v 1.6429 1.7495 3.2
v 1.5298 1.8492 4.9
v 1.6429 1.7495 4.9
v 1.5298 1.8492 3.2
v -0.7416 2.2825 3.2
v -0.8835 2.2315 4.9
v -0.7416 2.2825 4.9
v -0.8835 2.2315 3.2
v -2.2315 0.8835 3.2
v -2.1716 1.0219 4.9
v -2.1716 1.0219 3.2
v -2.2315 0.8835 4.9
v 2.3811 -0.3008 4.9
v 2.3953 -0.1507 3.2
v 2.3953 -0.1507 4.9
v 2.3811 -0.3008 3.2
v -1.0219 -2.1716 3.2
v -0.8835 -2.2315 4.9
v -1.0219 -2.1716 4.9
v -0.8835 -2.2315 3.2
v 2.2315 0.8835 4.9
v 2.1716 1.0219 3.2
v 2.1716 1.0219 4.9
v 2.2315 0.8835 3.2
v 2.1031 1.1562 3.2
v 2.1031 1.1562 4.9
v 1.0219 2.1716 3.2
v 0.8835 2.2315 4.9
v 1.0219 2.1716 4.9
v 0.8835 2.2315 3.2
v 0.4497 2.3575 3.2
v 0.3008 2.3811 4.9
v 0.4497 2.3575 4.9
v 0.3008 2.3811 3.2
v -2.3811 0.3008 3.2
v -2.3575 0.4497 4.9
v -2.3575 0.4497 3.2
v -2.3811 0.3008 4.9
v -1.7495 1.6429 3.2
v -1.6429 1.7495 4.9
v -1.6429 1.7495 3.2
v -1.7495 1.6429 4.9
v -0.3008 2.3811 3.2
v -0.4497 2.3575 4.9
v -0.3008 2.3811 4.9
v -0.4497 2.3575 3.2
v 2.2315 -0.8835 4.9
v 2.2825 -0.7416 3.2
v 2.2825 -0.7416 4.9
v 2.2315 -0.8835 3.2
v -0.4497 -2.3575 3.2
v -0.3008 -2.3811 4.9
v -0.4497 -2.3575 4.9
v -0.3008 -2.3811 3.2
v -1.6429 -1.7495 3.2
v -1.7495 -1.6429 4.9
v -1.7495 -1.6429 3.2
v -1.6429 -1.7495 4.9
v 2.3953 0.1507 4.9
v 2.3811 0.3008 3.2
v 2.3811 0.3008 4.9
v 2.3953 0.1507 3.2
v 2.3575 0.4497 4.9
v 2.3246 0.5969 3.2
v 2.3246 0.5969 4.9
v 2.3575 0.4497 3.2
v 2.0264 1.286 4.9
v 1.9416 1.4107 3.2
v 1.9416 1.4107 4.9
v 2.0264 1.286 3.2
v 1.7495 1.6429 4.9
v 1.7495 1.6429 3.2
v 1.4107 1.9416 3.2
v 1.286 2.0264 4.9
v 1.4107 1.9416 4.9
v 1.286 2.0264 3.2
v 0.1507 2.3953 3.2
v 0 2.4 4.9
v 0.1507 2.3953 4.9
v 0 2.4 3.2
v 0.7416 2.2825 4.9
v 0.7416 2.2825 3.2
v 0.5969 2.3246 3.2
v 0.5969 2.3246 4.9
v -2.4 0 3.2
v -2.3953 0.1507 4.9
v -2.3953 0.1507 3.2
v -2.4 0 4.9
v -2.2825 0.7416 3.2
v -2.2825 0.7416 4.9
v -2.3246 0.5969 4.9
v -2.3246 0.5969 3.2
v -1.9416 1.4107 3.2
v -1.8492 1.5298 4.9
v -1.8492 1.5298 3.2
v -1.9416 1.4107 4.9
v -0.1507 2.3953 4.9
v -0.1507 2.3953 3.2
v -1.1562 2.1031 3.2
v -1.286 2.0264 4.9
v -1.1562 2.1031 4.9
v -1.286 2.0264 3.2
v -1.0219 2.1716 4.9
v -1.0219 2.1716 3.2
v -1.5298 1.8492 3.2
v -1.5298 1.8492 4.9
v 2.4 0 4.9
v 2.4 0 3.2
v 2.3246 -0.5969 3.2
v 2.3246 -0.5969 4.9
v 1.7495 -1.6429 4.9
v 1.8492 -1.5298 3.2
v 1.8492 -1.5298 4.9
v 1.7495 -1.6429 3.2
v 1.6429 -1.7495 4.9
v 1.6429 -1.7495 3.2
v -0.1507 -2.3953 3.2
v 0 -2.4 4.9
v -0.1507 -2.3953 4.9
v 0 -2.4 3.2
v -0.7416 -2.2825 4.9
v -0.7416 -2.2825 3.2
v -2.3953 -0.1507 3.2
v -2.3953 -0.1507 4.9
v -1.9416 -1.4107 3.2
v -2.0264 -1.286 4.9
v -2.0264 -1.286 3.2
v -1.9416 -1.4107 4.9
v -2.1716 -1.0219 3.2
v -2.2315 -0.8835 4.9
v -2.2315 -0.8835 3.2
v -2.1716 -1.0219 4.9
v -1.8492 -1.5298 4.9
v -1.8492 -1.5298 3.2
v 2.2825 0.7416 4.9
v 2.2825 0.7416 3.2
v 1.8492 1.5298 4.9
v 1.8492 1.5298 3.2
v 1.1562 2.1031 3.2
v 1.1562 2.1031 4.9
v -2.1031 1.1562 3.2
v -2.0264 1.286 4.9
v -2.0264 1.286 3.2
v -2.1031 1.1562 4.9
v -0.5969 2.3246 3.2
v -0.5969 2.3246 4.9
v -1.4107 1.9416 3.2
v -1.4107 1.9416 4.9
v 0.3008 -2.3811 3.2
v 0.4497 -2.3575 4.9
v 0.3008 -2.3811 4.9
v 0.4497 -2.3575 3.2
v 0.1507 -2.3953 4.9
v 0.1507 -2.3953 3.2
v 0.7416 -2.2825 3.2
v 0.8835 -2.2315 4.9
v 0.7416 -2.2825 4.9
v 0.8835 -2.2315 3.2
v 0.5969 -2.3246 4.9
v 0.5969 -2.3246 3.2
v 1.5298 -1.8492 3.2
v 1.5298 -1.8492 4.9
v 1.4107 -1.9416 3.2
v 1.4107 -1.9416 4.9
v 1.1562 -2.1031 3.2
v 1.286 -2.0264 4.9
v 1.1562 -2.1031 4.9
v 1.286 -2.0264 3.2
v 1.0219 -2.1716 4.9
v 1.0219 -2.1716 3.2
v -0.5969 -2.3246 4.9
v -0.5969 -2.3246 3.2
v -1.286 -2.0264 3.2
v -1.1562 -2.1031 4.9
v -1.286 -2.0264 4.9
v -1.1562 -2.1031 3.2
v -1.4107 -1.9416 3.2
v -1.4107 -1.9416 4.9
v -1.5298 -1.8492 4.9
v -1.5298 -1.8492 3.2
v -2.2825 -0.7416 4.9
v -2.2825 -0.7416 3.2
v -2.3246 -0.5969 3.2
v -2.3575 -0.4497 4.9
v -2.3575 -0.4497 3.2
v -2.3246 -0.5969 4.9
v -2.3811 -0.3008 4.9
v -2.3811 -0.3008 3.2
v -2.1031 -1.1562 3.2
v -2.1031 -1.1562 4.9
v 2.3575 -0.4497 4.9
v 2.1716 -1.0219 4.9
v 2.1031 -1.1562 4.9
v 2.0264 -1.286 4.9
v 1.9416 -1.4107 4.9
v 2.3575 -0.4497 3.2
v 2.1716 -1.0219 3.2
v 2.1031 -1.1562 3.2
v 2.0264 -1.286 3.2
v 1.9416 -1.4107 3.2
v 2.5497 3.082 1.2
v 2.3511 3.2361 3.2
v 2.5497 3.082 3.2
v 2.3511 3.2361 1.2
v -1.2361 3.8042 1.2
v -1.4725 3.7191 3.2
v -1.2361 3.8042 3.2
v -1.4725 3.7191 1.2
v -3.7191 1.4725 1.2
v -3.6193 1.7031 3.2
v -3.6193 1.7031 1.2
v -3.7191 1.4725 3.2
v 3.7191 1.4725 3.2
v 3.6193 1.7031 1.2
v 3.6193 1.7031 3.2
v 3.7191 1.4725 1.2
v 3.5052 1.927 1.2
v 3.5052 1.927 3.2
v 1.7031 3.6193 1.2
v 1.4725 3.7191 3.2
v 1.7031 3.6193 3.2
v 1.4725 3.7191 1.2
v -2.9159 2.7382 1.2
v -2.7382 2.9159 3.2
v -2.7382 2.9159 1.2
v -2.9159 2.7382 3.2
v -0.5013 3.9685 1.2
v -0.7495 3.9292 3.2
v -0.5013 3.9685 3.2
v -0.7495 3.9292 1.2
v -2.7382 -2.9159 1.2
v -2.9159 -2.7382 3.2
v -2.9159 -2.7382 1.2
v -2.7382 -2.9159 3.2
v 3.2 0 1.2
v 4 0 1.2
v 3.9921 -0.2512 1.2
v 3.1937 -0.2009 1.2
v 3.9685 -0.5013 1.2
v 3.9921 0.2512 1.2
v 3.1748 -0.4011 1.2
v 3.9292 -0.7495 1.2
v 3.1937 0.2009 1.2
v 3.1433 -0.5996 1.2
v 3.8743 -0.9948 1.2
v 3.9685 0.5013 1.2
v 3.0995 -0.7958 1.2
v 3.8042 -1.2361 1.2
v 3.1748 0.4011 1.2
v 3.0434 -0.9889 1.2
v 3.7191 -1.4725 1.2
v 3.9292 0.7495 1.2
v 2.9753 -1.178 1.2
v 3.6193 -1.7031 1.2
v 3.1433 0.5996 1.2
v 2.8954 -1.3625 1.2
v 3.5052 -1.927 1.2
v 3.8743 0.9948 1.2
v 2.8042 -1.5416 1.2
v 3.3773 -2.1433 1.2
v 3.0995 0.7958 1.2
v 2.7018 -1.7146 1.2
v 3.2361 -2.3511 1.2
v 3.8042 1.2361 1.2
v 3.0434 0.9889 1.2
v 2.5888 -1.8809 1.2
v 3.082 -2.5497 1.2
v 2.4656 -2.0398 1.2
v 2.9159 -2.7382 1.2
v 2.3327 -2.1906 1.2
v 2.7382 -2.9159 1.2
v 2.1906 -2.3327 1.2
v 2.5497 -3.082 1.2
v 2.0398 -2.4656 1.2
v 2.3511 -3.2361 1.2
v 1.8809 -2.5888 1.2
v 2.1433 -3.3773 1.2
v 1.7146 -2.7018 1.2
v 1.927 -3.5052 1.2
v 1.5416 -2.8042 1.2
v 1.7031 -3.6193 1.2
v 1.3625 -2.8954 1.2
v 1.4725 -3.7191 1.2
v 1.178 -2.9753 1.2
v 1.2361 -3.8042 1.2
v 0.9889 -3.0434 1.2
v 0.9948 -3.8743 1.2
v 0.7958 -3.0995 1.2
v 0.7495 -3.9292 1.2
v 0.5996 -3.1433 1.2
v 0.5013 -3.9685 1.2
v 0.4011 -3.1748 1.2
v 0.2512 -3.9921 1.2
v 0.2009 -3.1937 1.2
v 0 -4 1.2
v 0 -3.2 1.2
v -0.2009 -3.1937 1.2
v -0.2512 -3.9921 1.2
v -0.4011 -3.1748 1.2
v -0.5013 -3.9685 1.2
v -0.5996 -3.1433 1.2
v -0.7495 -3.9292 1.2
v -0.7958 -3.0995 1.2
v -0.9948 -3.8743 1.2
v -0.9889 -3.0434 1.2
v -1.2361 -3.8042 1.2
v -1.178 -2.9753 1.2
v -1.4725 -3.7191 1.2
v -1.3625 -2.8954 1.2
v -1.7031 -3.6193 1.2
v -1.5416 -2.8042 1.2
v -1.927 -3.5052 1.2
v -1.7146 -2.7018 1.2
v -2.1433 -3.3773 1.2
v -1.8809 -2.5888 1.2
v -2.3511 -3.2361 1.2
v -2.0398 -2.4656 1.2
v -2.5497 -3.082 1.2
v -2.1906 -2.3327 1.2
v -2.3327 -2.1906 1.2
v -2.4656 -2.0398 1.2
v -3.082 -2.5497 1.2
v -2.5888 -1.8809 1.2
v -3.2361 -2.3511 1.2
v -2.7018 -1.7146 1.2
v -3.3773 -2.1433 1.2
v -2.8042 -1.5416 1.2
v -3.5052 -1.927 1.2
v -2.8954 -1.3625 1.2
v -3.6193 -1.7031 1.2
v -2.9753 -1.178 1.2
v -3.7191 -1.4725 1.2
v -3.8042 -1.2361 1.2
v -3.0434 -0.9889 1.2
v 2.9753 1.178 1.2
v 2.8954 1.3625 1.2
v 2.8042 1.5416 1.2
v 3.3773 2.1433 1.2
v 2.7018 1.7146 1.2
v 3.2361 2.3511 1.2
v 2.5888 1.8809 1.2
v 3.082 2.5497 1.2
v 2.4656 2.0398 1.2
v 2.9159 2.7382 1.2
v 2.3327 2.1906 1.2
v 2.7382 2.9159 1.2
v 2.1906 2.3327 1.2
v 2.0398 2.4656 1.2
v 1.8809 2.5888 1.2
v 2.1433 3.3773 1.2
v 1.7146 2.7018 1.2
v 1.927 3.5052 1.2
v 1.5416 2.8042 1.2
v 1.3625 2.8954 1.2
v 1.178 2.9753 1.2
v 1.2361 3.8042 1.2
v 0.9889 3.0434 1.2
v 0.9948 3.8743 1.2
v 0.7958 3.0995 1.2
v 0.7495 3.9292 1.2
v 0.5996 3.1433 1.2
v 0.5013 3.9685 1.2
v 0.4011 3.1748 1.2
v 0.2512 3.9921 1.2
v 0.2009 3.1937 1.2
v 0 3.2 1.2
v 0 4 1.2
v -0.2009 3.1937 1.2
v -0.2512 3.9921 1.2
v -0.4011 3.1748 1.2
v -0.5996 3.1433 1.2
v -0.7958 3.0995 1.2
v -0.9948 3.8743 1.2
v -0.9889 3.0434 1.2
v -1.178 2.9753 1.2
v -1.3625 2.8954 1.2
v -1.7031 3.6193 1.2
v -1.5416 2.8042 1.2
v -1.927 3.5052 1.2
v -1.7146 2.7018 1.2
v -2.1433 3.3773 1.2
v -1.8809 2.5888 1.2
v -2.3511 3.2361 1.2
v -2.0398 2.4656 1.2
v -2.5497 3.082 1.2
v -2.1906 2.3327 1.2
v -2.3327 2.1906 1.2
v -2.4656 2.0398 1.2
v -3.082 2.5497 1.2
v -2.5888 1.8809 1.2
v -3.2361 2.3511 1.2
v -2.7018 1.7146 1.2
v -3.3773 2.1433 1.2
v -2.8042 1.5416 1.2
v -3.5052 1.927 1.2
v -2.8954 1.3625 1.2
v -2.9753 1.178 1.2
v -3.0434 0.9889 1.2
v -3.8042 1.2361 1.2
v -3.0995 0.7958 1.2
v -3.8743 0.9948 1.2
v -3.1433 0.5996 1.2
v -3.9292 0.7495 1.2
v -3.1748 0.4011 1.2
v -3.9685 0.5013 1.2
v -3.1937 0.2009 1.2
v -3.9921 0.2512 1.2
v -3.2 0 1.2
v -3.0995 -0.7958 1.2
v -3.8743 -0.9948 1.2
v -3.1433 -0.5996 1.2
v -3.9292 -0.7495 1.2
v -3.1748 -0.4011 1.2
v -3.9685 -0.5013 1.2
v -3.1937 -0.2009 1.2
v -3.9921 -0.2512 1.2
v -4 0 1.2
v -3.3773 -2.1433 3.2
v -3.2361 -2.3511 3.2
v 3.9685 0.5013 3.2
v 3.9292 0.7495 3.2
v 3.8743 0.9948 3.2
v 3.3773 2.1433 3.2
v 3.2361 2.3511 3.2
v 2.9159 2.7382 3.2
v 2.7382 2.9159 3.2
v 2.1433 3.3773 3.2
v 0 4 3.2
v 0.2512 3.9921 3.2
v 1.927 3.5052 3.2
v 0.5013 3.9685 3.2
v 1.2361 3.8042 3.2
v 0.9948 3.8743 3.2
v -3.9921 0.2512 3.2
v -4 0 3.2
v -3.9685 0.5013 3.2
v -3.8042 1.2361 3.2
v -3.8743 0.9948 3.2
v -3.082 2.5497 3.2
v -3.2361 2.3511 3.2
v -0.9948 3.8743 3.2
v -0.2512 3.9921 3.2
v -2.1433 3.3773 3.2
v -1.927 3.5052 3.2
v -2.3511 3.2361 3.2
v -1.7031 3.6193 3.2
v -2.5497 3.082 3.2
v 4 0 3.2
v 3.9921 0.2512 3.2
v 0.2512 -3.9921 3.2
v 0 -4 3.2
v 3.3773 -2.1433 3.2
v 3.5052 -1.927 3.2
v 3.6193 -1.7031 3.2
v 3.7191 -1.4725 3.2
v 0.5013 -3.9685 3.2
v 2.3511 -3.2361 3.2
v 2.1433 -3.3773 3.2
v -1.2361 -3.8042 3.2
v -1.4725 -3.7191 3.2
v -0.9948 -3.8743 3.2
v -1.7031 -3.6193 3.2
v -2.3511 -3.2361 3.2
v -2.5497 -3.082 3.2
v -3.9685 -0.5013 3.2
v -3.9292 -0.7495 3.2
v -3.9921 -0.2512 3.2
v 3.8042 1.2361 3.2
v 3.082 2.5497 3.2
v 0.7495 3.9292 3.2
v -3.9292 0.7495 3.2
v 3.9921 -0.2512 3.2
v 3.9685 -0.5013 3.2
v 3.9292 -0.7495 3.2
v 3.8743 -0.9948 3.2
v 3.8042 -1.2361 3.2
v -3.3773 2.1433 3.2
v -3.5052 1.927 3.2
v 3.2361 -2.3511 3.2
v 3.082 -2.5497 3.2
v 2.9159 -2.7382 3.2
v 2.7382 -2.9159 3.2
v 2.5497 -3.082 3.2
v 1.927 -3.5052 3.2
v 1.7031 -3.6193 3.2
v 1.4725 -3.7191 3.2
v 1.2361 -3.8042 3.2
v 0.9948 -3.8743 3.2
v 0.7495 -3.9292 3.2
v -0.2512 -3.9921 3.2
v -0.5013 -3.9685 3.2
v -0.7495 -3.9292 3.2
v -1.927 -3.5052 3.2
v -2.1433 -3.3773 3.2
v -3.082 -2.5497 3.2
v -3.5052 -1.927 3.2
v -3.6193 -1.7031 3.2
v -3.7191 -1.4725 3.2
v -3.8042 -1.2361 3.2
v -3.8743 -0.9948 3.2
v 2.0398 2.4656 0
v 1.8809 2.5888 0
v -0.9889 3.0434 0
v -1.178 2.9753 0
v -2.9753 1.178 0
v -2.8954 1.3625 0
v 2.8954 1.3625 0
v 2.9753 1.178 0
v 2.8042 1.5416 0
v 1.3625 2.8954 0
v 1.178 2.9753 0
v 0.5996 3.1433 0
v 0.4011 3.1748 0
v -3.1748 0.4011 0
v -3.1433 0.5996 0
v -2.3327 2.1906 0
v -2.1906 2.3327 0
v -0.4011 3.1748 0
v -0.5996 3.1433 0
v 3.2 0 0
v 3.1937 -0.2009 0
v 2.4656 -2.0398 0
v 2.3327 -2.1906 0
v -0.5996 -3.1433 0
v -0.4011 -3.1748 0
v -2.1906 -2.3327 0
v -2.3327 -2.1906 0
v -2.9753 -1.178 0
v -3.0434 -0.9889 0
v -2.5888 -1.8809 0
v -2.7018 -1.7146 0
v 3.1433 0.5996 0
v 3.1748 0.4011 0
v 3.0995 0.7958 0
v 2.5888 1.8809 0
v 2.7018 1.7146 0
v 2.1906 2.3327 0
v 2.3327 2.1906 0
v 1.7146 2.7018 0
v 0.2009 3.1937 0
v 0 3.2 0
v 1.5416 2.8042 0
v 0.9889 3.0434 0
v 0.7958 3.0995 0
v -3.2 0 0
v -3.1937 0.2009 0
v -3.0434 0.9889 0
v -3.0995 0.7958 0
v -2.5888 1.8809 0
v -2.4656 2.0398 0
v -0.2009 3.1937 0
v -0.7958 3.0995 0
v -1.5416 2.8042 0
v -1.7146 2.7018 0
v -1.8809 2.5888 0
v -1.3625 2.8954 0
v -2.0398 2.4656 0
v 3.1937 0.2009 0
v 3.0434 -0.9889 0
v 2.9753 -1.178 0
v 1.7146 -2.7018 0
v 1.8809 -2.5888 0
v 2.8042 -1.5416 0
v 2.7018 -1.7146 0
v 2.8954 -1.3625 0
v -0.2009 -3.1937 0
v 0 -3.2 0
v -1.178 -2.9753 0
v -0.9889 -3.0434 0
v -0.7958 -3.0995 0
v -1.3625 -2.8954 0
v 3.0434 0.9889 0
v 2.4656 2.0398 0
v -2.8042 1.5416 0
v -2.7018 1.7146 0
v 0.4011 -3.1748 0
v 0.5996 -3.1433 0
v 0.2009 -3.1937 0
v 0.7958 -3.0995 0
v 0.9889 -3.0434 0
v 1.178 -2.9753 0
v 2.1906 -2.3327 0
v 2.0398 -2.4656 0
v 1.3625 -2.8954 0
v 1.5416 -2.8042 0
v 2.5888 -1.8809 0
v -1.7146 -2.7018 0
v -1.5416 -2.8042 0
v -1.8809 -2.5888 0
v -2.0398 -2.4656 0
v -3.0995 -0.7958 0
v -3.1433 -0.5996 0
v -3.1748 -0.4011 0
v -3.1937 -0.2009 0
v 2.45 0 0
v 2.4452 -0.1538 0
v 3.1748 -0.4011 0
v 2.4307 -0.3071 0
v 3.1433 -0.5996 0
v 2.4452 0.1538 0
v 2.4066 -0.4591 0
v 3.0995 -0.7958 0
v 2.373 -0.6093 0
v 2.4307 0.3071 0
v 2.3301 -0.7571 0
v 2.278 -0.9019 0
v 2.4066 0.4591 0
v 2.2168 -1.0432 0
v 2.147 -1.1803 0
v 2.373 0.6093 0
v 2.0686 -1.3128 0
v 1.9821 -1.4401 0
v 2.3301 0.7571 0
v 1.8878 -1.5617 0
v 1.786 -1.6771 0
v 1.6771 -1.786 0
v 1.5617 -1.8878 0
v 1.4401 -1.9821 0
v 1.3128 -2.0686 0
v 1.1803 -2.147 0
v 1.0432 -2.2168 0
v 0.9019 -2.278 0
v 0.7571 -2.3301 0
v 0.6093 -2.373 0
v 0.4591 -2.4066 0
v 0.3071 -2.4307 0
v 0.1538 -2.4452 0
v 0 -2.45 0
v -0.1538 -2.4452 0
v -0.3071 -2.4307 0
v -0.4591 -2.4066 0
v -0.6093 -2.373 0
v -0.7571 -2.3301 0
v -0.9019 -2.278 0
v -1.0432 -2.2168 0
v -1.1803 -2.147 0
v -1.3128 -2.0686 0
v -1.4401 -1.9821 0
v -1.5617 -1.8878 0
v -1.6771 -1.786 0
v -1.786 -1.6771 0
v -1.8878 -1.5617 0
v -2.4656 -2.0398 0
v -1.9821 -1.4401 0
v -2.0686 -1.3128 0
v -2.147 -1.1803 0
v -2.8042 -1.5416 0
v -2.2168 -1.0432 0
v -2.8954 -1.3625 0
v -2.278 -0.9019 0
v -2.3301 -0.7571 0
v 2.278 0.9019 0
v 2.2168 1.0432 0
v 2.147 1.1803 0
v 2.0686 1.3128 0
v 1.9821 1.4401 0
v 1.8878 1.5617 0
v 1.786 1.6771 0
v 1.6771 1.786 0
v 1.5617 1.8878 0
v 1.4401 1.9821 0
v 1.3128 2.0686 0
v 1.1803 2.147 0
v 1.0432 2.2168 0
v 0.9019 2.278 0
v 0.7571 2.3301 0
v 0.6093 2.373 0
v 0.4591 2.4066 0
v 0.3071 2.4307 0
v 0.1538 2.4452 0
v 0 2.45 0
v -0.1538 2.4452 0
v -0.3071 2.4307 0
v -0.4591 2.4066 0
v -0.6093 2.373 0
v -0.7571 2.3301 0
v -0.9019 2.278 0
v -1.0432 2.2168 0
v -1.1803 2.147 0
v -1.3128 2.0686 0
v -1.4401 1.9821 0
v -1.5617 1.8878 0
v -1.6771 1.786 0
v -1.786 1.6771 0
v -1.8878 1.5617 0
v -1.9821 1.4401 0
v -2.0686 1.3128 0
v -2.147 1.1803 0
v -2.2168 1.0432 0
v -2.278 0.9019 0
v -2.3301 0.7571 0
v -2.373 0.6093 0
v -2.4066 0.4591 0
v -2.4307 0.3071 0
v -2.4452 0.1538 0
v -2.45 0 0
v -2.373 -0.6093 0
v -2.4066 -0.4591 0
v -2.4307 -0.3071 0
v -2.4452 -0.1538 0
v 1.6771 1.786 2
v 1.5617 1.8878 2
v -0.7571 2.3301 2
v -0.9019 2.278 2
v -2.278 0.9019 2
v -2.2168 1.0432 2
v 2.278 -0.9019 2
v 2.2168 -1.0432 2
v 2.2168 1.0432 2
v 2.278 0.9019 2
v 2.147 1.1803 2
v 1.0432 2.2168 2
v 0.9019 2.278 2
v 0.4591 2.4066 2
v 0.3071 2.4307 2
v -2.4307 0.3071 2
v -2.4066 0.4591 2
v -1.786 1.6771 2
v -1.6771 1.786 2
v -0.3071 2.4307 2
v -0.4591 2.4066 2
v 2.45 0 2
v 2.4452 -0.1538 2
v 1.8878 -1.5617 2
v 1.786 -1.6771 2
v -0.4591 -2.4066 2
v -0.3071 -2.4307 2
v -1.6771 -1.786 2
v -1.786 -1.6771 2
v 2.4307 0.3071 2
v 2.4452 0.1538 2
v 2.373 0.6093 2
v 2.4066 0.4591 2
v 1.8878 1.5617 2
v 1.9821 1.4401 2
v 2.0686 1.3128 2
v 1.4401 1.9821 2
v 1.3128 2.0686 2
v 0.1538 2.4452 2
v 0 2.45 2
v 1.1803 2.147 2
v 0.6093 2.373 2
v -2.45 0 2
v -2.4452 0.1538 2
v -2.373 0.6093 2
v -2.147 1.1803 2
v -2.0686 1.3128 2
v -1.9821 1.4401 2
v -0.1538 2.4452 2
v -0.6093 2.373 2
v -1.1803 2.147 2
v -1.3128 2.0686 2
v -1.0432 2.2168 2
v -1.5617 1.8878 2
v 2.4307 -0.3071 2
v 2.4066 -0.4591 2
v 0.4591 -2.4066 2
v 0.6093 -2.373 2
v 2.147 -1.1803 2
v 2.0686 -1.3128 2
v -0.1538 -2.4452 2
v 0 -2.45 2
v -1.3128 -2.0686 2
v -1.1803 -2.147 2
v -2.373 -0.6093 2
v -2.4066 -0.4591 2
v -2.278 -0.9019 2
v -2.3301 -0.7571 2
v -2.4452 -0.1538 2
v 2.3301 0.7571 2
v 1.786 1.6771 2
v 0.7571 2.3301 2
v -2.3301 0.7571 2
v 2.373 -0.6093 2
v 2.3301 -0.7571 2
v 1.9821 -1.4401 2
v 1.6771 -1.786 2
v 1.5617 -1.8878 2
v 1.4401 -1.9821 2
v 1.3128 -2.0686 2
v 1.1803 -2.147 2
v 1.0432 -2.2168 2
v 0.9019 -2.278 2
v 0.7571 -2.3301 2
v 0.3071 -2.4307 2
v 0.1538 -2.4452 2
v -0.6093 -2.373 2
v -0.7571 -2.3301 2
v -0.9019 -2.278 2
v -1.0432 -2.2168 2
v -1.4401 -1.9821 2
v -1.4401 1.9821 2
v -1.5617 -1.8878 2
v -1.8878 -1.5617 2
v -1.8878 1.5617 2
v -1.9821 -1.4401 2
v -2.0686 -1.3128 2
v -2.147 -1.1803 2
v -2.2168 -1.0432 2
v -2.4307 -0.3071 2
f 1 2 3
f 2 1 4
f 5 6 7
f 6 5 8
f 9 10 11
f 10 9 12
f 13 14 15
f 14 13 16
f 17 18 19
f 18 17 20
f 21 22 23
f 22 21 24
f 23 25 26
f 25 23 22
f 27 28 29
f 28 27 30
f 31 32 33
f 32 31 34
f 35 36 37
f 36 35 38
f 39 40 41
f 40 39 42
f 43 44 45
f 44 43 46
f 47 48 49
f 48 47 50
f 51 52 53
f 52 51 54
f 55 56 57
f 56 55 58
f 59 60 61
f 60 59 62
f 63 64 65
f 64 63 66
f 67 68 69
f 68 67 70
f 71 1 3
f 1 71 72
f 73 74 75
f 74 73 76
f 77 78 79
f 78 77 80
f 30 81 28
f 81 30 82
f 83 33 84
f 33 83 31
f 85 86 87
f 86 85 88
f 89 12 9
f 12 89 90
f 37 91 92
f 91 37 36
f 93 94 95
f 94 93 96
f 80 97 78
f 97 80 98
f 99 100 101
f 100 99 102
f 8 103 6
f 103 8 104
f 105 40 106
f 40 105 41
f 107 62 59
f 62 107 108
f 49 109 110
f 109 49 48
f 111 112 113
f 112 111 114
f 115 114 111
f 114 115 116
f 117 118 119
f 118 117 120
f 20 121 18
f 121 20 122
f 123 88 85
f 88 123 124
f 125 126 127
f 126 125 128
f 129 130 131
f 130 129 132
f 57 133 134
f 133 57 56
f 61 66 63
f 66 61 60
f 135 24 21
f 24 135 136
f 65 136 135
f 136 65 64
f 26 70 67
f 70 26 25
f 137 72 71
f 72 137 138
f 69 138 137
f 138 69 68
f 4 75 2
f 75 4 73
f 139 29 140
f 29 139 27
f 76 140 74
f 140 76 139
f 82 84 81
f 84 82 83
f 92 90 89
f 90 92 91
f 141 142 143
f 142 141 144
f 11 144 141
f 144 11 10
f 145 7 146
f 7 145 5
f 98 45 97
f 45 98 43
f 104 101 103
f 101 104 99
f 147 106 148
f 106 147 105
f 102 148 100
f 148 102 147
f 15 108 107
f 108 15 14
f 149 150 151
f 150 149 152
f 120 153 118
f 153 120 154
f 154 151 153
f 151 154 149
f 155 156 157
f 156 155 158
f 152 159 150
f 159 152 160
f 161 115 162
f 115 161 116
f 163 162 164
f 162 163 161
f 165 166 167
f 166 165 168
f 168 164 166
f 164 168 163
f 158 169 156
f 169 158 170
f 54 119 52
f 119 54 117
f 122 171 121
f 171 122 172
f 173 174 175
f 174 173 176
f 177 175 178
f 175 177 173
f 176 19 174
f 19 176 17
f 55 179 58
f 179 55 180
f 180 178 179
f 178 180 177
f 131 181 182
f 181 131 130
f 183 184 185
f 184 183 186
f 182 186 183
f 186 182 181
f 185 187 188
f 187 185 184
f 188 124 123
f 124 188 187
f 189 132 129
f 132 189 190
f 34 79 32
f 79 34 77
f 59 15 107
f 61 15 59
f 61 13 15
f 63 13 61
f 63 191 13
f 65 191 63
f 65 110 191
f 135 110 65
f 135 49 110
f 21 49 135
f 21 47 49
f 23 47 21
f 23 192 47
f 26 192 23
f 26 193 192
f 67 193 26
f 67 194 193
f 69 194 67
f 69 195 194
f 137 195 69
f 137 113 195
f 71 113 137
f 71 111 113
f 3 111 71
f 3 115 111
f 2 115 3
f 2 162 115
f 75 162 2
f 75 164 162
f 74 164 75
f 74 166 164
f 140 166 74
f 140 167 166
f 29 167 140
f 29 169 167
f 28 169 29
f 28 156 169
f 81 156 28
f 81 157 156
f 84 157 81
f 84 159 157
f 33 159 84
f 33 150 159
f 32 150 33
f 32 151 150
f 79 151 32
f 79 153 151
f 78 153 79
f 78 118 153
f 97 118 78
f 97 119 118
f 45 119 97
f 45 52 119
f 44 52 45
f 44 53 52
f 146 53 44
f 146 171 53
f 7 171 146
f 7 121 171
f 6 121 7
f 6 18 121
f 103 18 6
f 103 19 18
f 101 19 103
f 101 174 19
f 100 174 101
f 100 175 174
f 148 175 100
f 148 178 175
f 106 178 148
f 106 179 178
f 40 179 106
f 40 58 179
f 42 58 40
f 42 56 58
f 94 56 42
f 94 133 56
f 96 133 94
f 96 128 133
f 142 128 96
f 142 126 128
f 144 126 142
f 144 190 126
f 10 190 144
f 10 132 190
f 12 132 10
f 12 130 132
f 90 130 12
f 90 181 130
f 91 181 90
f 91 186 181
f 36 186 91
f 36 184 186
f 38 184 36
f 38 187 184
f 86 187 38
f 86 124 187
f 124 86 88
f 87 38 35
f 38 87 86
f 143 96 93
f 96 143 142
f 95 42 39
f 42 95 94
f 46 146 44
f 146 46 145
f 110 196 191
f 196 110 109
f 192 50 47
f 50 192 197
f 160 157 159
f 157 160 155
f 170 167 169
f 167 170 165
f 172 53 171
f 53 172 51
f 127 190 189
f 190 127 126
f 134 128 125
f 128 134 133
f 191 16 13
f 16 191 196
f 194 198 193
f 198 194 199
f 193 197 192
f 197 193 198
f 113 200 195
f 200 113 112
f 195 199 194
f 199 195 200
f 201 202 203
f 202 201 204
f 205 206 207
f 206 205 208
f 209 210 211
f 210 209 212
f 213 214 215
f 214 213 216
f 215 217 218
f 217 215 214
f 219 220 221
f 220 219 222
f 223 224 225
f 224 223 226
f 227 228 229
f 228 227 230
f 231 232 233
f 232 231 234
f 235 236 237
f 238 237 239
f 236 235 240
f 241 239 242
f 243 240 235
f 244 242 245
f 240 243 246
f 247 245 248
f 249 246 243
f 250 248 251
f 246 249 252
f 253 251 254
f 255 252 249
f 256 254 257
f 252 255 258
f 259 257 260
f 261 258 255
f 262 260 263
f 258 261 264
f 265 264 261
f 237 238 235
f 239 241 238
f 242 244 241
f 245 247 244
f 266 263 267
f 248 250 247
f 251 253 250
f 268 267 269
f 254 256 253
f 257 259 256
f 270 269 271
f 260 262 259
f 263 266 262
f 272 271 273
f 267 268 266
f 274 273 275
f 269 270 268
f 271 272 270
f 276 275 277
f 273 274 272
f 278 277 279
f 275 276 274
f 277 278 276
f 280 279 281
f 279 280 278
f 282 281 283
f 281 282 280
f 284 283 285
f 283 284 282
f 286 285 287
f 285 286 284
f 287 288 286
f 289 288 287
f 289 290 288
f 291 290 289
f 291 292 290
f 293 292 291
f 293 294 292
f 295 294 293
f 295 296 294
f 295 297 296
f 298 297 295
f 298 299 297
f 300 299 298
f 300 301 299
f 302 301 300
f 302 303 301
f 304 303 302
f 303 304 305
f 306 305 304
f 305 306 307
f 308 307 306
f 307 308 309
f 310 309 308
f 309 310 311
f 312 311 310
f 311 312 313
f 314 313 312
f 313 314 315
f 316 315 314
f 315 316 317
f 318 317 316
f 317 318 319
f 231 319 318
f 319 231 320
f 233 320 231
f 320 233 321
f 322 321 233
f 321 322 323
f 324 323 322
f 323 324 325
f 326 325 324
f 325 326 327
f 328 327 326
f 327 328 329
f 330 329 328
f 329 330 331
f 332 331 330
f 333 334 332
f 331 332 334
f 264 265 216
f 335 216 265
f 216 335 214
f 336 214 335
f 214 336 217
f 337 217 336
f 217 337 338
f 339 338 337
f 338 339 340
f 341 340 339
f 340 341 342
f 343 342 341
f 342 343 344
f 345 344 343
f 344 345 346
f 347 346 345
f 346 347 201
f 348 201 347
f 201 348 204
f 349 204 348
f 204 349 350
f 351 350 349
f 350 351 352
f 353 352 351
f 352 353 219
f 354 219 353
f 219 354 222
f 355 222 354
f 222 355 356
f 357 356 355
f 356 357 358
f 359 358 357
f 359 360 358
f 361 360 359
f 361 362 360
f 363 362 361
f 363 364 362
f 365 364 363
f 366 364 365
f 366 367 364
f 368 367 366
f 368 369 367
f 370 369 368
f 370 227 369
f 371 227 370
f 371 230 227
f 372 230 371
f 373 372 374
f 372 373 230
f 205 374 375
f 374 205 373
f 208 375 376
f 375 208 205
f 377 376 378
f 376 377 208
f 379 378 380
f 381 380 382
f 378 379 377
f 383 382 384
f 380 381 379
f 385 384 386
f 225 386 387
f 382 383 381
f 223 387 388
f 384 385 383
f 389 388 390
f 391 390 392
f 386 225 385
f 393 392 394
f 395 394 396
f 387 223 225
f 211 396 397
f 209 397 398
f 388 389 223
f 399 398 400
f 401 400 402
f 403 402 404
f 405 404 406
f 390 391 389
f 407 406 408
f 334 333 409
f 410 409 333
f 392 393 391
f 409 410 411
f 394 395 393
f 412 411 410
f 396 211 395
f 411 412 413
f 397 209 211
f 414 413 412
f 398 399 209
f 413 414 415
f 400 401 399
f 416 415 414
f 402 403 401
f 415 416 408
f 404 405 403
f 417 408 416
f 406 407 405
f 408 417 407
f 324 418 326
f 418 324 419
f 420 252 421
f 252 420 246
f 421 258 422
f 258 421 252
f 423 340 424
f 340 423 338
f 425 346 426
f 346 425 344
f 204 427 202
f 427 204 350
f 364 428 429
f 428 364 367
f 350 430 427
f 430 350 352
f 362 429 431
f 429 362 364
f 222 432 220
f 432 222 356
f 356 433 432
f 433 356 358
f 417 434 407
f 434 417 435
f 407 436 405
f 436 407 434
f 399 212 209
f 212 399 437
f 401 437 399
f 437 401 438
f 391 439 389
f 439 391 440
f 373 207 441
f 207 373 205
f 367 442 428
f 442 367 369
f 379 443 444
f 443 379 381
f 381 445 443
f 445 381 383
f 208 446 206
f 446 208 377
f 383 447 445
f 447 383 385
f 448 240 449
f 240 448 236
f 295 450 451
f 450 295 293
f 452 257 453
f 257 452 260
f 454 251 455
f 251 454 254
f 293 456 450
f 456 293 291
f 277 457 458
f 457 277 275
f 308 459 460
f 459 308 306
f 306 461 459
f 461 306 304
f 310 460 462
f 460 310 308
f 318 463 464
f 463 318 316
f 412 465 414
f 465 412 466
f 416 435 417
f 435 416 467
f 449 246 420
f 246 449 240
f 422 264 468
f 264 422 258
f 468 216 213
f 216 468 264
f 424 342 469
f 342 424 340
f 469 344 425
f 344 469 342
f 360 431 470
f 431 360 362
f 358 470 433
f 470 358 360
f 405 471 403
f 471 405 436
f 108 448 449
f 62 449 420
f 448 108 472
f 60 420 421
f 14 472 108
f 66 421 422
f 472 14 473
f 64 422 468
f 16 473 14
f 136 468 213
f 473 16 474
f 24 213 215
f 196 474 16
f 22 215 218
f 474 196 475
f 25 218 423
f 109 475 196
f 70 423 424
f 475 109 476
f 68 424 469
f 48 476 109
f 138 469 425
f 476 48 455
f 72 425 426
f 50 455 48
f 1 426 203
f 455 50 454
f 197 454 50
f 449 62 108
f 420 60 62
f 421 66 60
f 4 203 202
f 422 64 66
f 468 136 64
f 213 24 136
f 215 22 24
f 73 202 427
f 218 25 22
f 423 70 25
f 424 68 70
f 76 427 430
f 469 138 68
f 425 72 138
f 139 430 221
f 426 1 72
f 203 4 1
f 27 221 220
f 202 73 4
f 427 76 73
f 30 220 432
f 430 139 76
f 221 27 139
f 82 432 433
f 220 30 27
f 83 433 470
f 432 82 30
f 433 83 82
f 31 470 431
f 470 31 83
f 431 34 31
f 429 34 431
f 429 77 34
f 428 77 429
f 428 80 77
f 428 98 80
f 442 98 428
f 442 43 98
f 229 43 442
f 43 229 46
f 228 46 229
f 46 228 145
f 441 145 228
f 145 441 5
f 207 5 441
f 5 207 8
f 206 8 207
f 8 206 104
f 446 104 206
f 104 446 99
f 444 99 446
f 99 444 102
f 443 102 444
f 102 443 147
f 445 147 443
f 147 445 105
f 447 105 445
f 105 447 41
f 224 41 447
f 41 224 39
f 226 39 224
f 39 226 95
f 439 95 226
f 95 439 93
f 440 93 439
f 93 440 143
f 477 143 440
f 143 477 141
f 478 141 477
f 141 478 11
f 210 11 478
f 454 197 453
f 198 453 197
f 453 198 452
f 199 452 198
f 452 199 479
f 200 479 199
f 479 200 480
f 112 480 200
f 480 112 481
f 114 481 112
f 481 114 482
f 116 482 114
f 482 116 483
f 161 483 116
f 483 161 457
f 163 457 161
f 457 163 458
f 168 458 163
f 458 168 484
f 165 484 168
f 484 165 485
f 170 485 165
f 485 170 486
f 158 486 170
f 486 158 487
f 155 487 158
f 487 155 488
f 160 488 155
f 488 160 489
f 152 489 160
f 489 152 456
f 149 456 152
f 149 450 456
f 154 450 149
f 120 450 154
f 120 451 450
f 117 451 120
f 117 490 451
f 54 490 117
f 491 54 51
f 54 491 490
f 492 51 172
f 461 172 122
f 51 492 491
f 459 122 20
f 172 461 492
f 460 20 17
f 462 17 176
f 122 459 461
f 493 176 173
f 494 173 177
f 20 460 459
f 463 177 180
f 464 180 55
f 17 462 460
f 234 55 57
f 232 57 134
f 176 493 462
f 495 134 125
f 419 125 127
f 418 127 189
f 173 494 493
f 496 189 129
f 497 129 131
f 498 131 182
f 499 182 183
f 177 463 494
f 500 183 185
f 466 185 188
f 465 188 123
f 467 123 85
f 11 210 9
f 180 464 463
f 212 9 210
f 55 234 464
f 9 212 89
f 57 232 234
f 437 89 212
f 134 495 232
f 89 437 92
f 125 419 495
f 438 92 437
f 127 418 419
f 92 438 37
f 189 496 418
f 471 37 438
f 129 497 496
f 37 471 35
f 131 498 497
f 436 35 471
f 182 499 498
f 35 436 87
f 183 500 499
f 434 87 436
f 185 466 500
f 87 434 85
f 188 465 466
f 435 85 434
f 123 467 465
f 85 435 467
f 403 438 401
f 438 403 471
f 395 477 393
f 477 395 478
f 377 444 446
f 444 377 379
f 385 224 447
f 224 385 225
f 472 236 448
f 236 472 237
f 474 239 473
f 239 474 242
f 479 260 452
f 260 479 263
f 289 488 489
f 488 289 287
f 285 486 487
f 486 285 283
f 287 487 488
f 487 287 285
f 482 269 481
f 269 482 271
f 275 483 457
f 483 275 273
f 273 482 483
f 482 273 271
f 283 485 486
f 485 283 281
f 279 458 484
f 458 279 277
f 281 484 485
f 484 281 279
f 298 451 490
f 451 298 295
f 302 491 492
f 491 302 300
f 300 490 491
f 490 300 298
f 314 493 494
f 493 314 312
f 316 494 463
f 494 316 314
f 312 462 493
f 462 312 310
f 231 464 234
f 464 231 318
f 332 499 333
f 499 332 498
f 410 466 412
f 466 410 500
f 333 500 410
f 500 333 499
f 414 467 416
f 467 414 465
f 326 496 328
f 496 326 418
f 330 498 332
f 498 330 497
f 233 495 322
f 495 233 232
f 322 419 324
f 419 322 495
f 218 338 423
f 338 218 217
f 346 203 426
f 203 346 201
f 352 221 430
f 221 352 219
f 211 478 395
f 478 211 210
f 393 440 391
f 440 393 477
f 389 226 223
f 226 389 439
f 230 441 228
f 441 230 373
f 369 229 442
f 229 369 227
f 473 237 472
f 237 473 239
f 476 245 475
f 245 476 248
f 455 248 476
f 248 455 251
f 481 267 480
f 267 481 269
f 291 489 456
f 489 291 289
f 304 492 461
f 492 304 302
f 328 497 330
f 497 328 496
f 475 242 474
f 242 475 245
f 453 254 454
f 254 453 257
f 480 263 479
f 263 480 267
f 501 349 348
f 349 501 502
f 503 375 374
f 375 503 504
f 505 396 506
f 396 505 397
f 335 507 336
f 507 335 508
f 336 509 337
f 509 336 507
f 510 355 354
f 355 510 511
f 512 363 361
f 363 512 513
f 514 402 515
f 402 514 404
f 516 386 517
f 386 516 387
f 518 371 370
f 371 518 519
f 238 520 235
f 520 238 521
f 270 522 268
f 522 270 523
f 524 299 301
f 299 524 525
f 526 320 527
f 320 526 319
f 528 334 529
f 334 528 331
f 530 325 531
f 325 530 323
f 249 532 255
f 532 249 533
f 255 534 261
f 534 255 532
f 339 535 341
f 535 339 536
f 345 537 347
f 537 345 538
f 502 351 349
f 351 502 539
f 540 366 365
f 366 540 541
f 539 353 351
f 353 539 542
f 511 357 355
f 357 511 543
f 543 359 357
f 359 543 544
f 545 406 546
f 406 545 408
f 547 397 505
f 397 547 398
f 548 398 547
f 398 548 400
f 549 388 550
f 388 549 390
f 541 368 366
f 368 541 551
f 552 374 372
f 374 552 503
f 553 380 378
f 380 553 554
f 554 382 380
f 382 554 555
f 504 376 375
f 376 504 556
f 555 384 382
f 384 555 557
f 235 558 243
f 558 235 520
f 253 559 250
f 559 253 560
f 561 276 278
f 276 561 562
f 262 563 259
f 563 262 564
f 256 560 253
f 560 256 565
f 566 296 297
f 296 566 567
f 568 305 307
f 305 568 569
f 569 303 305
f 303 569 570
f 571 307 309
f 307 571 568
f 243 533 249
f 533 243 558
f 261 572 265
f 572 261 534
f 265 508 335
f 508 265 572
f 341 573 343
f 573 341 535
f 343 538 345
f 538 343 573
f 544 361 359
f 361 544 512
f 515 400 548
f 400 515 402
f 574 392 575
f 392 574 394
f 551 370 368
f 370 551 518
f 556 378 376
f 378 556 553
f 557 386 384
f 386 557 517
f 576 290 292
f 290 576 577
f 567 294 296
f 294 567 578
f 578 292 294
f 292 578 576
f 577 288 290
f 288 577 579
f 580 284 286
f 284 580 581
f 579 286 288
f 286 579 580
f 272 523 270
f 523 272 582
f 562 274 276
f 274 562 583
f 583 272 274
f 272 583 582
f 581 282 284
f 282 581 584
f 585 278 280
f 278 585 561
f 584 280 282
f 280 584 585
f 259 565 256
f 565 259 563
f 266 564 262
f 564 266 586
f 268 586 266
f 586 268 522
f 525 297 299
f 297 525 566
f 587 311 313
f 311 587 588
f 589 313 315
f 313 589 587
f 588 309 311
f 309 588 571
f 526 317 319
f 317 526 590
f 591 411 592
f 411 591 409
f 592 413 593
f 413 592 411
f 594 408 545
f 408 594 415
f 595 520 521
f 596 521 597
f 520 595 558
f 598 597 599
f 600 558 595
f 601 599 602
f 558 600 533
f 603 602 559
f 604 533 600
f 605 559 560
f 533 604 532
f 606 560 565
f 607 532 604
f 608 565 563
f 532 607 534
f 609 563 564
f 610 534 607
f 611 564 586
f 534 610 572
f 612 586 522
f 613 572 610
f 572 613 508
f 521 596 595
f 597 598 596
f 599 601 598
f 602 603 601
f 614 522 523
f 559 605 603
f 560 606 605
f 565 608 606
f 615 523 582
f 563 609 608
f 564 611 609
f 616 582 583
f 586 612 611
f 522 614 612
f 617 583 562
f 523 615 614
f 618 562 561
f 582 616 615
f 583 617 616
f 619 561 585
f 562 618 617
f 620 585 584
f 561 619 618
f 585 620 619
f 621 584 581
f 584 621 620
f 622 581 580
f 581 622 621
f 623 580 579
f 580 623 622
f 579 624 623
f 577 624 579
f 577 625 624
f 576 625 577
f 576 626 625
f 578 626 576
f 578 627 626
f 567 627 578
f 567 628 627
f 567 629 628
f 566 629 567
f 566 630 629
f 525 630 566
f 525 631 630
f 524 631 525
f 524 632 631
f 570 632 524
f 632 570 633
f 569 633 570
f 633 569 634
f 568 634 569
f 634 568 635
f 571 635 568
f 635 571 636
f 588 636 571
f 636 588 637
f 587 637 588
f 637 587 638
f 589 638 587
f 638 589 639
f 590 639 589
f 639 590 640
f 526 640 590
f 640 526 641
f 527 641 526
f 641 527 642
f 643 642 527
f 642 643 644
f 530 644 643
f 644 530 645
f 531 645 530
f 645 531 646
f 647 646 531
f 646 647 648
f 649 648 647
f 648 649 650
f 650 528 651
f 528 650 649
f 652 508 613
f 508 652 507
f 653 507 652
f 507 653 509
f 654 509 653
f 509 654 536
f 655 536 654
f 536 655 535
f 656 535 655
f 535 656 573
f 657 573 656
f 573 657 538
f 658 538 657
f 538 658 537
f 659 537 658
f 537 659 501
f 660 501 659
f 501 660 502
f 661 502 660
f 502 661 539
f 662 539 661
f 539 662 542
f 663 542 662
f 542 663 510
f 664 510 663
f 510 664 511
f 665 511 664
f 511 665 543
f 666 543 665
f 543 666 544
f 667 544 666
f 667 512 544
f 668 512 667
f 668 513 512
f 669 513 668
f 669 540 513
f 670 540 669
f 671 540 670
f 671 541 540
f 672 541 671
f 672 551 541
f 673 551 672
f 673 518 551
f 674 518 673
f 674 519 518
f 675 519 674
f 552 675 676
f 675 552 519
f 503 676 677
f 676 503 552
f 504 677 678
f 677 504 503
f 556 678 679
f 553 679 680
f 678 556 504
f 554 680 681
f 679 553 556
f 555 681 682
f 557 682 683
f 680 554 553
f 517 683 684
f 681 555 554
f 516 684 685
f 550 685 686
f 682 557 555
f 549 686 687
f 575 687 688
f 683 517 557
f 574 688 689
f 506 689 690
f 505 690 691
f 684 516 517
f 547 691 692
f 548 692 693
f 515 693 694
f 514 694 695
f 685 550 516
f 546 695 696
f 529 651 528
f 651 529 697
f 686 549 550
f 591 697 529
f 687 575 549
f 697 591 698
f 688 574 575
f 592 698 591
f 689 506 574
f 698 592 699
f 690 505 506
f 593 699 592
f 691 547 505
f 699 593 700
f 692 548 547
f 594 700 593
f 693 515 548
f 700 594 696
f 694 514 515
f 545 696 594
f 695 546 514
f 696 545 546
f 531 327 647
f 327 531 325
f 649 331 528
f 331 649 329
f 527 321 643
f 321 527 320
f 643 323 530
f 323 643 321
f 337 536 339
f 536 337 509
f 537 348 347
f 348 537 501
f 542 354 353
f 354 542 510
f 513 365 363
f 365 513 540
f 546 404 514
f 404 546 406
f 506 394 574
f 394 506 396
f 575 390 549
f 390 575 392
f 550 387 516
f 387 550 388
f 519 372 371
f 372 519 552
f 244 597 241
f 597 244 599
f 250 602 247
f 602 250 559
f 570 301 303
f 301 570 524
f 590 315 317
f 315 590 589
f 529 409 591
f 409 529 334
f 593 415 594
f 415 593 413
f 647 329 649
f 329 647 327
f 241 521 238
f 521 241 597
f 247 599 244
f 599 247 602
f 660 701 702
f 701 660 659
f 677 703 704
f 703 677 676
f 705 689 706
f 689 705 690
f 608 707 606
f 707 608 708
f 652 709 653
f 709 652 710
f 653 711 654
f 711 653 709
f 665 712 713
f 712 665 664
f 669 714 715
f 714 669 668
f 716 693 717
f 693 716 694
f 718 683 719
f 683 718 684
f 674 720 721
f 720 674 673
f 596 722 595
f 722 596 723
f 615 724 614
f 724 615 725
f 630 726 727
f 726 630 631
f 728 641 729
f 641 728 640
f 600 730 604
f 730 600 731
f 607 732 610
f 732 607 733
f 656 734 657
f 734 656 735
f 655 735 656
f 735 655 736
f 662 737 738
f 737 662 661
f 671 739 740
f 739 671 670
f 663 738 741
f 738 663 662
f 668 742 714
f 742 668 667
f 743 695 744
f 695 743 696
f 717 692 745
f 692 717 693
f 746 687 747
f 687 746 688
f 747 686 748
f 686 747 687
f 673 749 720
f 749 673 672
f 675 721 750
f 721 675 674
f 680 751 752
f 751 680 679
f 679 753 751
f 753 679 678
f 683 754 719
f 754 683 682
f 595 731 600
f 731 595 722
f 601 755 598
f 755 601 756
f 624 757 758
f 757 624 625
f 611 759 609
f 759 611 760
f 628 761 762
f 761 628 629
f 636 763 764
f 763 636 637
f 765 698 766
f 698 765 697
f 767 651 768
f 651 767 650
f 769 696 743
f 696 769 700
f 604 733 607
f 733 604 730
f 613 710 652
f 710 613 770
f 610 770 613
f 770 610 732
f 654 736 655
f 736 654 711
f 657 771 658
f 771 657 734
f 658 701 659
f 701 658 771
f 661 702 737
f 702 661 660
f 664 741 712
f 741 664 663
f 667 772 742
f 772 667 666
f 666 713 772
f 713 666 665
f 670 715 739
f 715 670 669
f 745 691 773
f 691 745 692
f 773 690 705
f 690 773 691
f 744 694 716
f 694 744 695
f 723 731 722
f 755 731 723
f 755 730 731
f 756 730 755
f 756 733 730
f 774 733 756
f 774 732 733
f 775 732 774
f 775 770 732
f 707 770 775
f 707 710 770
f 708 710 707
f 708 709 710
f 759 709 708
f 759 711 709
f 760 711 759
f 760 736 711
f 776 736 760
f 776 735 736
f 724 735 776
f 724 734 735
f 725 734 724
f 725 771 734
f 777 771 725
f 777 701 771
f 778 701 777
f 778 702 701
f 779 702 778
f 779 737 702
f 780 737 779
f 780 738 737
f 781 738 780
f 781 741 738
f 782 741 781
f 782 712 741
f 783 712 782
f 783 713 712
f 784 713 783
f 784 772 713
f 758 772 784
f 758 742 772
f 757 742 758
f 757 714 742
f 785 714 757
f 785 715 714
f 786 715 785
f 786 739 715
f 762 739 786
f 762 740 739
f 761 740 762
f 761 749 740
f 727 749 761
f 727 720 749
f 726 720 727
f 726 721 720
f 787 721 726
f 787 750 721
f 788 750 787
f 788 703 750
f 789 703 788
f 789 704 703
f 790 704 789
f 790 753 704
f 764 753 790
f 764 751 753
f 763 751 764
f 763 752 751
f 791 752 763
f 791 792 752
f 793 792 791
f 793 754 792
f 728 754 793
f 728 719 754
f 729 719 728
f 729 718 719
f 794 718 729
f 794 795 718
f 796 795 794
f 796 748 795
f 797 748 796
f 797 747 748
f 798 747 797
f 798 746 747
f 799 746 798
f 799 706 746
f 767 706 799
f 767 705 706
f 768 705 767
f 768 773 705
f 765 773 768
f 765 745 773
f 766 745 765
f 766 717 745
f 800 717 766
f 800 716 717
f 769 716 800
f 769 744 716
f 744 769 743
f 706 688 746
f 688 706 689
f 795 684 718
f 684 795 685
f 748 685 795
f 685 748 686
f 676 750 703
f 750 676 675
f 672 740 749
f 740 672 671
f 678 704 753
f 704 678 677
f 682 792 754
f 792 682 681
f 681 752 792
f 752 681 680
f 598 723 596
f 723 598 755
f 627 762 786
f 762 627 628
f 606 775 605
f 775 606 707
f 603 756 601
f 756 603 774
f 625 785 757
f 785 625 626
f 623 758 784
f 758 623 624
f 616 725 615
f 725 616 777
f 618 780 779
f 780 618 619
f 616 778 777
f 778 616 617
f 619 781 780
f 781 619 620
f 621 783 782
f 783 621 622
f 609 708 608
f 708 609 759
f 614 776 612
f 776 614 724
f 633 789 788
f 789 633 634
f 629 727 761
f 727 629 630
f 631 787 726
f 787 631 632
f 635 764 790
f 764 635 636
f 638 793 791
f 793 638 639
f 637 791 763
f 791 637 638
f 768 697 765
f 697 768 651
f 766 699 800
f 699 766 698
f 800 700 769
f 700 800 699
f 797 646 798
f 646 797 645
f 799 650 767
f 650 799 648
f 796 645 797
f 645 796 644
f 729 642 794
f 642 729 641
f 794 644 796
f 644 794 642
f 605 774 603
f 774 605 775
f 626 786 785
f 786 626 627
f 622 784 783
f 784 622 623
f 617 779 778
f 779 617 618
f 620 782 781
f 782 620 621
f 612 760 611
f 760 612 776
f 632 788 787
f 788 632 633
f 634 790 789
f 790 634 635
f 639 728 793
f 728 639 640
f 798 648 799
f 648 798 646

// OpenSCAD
eps = 0.001;

modelScale = 1.0;




// printability corrections; values should be zero for real object dimensions 
PRINTABLE = 1;
correction_ri1 = PRINTABLE ? 0.05 : 0.0;


ro1 = 4.0*modelScale;
ro2 = 3.2*modelScale;

ho1 = 2.0*modelScale; 
ho2 = 1.2*modelScale;

ri1 = (2.4+correction_ri1)*modelScale;
hi1 = 2.0*modelScale;

h_pin = 1.7*modelScale;
r_pin1 = 4.8/2*modelScale;





module drawExternalPinSolid()
{
	translate([0,0,ho1+ho2-eps]) cylinder(h_pin+eps,r_pin1,r_pin1,$fn=100*modelScale);
}


module drawPlate() 
{
	difference()
	{
		union()
		{	
            drawExternalPinSolid();
            translate([0,0,ho2]) cylinder(ho1,ro1,ro1,$fn=100*modelScale);
            cylinder(ho2+eps,ro2,ro2,$fn=100*modelScale);
		}
		union()
		{	
            translate([0,0,-eps]) cylinder(hi1+eps,ri1,ri1,$fn=100*modelScale);
		}
	}

}


drawPlate();
